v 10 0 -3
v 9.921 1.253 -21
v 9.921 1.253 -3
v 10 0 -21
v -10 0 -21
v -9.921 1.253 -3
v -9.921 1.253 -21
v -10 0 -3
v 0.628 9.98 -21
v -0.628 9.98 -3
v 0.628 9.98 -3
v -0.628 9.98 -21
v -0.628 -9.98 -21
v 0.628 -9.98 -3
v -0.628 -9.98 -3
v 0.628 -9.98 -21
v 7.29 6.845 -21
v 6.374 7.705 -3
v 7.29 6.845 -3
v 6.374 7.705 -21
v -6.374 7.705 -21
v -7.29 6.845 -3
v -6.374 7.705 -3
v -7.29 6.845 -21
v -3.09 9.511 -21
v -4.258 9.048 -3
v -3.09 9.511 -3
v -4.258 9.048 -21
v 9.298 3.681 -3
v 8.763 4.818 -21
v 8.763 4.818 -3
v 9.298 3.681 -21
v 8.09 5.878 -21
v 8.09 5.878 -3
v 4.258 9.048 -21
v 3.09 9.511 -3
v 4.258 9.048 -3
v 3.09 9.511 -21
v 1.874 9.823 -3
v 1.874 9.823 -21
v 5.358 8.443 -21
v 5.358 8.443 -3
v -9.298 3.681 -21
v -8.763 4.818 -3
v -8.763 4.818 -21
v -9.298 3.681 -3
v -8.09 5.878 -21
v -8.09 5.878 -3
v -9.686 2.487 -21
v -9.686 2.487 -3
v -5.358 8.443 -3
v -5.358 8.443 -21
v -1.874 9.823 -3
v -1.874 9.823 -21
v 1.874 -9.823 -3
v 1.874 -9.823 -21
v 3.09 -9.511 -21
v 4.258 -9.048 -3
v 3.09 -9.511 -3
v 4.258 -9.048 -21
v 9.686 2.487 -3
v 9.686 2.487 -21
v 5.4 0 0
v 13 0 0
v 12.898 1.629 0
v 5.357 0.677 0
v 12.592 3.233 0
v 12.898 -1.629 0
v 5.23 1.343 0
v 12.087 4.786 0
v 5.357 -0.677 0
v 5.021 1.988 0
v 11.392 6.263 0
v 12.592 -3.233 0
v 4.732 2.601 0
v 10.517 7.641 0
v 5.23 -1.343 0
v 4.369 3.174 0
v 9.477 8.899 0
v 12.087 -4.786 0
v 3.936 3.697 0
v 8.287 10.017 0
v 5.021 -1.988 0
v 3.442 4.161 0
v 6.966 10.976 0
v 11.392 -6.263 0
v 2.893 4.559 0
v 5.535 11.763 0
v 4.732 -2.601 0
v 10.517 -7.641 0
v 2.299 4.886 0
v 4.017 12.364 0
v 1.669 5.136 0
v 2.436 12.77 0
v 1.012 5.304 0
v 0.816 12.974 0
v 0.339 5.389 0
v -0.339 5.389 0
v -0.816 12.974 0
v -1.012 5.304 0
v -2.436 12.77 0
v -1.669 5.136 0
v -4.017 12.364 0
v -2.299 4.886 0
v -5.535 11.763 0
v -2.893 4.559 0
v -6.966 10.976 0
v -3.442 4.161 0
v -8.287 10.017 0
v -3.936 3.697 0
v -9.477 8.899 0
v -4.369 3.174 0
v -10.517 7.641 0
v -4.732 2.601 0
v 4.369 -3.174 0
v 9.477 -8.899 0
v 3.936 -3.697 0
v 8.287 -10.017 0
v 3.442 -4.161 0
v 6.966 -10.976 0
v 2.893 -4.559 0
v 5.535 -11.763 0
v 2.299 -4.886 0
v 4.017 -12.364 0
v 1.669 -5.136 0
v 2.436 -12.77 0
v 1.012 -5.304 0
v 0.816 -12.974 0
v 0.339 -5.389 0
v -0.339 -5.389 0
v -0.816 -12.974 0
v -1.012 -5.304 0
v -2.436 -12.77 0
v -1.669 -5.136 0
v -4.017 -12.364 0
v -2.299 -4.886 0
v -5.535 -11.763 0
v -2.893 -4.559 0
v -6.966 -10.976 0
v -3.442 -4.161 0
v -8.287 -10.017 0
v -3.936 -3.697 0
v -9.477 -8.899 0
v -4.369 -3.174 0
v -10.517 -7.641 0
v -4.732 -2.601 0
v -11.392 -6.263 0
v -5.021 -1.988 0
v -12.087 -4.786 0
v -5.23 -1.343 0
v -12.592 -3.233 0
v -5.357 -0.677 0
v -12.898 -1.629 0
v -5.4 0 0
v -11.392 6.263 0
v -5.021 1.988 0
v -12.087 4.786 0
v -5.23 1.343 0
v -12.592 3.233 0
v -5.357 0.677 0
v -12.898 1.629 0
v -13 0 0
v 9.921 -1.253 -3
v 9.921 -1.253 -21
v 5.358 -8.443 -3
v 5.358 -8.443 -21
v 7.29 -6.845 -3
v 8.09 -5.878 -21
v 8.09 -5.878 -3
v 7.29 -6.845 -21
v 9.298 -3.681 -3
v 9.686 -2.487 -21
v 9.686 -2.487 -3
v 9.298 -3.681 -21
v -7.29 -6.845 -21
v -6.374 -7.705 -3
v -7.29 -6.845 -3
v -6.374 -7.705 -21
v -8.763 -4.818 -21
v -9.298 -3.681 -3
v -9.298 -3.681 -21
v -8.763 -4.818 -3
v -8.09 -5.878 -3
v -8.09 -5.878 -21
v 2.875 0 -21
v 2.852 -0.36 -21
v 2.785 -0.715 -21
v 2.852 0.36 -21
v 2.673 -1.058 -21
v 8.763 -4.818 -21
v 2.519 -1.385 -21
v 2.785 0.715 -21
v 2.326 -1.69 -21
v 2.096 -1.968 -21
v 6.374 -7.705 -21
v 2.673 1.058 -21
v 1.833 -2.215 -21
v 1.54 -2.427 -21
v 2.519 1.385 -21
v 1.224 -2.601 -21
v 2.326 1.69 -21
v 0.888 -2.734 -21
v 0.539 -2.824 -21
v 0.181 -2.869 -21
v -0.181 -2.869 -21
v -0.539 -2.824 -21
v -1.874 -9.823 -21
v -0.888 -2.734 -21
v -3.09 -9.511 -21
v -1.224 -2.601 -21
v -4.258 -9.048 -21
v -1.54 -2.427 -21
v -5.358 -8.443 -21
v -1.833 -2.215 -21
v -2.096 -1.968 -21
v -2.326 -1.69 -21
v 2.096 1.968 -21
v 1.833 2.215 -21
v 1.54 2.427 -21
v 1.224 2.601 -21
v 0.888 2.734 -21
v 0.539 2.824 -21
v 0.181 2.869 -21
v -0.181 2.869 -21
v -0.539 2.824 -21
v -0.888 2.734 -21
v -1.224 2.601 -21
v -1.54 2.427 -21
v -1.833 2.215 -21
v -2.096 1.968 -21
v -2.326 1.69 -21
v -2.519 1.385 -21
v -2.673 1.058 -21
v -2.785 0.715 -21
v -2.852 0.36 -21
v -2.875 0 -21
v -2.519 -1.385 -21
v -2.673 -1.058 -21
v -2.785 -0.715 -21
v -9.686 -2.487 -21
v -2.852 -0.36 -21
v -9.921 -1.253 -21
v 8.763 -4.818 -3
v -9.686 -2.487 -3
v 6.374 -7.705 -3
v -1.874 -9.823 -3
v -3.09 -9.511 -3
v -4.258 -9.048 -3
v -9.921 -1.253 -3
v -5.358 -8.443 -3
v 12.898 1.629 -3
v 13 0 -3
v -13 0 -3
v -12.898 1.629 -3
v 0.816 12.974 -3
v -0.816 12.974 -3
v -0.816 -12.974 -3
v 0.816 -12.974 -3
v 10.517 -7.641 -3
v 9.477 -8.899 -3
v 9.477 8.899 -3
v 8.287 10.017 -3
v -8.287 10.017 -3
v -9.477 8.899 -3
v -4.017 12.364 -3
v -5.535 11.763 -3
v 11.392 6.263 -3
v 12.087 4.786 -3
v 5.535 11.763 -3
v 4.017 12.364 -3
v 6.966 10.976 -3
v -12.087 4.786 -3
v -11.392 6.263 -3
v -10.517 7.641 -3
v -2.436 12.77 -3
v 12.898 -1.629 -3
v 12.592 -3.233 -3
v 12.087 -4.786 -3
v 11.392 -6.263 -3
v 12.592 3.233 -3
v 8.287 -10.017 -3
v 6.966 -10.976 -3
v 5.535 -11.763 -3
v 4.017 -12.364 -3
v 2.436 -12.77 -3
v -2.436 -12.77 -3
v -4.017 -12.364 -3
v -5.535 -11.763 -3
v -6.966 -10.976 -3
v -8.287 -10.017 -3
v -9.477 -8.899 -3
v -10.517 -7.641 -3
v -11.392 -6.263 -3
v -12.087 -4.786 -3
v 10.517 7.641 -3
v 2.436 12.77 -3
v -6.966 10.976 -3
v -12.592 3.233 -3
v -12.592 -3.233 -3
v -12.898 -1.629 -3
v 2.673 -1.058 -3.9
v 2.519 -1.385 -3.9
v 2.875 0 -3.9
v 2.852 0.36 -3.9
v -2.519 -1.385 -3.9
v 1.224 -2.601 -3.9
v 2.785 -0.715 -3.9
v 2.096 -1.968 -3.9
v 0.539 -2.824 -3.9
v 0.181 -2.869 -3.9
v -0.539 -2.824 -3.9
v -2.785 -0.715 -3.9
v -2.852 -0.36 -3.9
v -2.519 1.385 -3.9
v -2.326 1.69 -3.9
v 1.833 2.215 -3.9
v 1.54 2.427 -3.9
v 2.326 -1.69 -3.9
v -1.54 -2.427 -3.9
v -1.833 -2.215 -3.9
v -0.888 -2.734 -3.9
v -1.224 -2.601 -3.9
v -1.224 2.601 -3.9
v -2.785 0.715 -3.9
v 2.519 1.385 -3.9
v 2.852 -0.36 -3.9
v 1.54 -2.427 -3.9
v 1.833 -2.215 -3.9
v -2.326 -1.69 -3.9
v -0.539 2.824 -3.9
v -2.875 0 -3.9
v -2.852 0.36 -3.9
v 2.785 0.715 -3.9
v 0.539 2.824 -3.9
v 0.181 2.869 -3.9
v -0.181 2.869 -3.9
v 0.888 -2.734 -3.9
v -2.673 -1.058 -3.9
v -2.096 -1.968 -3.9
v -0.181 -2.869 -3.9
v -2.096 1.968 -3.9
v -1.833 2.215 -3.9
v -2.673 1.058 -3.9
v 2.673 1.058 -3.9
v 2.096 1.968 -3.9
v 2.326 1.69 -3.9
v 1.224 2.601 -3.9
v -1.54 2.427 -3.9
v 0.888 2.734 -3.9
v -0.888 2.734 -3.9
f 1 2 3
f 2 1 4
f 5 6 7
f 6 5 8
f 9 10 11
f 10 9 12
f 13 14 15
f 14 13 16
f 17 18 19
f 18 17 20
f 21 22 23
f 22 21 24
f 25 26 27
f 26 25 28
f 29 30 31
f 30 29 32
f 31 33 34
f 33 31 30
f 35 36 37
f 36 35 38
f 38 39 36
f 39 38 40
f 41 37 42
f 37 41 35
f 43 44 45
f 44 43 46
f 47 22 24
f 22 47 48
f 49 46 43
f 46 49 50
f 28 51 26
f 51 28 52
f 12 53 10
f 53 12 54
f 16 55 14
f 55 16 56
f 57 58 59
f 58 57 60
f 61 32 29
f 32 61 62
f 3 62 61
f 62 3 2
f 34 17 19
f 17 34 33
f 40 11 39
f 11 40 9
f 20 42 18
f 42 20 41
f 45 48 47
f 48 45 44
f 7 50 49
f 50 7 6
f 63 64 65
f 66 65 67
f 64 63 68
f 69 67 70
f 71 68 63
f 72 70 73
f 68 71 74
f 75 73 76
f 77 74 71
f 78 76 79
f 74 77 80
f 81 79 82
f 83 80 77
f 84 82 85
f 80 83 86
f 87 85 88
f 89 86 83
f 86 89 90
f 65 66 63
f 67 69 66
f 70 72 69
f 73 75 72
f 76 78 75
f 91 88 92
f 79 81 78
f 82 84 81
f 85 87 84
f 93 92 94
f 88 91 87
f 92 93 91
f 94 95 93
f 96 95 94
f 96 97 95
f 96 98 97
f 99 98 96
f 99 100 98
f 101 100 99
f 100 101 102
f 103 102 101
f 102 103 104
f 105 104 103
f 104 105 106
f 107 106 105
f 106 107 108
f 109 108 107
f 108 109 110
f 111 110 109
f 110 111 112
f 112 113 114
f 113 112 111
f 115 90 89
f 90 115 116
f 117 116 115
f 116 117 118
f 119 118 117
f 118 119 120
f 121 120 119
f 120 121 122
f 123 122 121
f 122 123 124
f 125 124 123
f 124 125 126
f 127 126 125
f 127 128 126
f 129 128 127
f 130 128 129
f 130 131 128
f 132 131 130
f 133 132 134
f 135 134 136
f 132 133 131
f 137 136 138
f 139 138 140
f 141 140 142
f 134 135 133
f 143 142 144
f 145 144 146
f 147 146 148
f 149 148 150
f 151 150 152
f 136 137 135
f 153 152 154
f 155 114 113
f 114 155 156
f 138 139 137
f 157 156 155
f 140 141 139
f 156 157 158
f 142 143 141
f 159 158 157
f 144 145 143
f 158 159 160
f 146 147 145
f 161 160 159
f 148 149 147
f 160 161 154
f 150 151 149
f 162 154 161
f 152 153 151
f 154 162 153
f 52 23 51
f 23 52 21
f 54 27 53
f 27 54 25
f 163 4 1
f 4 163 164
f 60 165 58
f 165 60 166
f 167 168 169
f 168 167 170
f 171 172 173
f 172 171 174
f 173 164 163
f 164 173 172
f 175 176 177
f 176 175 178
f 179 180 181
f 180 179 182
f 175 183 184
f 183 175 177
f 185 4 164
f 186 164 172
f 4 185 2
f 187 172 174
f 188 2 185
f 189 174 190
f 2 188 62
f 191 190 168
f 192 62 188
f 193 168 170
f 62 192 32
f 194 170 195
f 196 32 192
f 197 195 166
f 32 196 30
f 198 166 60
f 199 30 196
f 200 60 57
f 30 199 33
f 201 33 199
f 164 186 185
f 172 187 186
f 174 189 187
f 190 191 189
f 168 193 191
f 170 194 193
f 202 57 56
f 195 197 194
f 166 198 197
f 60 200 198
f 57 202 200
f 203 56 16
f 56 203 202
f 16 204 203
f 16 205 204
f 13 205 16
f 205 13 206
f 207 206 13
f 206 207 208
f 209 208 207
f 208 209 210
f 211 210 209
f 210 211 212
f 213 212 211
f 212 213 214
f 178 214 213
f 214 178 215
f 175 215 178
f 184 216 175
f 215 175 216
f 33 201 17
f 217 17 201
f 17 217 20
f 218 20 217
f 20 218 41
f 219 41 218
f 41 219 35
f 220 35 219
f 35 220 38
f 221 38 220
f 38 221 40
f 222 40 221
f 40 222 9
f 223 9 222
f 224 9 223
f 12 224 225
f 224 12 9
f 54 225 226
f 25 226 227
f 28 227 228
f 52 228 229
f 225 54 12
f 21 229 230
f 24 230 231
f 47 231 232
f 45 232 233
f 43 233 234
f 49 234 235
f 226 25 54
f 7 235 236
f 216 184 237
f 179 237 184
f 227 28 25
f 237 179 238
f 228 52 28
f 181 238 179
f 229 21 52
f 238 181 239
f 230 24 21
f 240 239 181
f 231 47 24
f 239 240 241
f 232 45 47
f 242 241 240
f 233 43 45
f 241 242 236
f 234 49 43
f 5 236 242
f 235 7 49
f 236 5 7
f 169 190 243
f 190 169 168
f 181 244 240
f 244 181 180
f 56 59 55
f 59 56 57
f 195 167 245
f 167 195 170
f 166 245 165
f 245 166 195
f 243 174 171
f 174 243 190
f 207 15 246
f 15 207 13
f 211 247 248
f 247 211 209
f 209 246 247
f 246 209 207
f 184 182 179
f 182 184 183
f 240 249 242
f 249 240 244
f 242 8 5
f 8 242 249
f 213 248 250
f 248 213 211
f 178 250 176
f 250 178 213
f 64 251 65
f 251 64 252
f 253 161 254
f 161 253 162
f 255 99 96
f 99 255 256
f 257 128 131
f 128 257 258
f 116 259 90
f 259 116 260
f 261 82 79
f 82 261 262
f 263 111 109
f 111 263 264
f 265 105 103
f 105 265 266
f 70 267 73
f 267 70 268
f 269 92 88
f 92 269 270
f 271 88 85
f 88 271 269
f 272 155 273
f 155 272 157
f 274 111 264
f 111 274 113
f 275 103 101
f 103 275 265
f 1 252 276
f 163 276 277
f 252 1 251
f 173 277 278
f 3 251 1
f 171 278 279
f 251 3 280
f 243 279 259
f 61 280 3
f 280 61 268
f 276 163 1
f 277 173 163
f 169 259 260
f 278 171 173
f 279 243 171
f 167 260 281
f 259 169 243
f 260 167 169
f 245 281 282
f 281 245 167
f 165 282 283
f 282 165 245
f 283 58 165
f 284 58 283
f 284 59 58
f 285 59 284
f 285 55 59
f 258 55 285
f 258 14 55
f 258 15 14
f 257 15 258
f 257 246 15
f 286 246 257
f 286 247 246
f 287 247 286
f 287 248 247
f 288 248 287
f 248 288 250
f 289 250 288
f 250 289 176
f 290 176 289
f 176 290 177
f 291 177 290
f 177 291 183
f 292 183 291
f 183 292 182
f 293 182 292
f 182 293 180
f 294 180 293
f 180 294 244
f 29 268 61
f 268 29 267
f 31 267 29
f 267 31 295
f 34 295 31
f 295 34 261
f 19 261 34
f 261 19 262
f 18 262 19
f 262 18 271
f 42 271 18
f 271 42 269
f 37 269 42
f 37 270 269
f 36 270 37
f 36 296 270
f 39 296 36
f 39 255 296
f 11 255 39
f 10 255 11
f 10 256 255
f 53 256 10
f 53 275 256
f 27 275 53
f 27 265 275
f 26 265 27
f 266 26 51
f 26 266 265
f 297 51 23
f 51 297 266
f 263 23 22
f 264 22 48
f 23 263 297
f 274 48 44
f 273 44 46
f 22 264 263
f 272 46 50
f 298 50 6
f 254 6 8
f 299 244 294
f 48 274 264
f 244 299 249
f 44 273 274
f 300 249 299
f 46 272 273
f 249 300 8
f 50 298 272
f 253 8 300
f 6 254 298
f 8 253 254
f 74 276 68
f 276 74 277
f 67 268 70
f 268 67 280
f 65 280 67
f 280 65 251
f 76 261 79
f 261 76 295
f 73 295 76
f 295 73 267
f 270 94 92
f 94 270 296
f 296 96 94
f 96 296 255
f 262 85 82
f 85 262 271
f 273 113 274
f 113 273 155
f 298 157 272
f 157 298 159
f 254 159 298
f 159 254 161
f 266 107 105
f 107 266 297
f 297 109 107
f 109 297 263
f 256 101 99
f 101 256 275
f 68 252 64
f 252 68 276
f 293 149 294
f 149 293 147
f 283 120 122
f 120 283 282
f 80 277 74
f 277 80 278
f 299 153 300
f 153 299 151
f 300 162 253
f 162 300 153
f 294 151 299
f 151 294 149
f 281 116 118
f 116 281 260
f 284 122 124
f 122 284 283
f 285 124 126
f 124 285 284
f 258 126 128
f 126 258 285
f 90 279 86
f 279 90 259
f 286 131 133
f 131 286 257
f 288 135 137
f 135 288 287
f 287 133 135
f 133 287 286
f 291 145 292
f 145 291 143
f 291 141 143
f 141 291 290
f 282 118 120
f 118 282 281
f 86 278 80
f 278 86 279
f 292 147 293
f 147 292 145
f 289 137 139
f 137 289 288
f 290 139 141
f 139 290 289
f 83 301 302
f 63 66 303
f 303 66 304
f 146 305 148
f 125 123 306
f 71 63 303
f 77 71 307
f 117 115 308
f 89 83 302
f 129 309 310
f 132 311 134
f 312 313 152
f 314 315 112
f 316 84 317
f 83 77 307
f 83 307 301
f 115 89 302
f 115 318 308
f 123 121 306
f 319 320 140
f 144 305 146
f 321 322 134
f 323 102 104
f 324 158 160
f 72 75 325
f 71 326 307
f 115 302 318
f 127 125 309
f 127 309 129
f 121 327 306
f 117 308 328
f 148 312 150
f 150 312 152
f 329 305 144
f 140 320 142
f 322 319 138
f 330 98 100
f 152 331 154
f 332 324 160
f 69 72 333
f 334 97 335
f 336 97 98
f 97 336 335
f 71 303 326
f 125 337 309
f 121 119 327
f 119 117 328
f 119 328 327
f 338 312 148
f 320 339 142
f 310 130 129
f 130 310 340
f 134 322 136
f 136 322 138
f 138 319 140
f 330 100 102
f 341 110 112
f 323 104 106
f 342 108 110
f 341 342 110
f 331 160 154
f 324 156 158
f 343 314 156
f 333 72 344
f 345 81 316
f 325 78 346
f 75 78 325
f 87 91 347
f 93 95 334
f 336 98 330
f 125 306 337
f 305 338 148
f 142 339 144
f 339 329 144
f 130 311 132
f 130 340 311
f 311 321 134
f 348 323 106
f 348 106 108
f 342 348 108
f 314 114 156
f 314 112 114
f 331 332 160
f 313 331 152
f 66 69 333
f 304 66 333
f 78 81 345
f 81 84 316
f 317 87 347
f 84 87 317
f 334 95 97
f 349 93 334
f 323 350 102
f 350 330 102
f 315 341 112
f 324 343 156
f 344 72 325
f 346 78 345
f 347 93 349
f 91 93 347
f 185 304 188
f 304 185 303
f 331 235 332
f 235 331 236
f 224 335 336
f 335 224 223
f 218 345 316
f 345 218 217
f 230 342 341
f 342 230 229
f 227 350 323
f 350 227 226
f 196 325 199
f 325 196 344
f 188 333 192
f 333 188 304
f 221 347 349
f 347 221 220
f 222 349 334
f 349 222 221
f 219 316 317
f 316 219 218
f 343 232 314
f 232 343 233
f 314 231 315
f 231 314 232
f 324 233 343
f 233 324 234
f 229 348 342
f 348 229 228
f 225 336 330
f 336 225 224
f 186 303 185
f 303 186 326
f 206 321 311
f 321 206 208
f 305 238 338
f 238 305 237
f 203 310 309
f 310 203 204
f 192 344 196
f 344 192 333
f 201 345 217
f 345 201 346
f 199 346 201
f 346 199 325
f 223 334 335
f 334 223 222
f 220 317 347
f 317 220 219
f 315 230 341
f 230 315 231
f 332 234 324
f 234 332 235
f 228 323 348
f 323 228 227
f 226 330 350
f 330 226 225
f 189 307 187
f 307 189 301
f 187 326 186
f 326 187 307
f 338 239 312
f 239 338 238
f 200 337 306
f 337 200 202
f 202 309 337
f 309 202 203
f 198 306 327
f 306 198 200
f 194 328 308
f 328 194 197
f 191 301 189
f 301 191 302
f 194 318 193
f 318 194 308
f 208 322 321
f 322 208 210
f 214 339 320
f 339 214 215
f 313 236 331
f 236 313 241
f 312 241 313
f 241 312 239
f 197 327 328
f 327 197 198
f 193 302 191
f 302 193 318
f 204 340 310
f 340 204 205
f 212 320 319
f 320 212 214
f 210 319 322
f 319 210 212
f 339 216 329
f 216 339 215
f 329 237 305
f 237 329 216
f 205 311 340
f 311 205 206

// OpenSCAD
$fn = 50;


difference() {
	union() {
		translate(v = [0, 0, -21.0000000000]) {
			cylinder(h = 21, r = 10.0000000000);
		}
		translate(v = [0, 0, -3.0000000000]) {
			cylinder(h = 3, r = 13.0000000000);
		}
	}
	union() {
		translate(v = [0, 0, 0]) {
			rotate(a = [0, 0, 0]) {
				difference() {
					union() {
						#translate(v = [0, 0, -21.0000000000]) {
							cylinder(h = 21, r = 2.6000000000);
						}
						#translate(v = [0, 0, -3.9000000000]) {
							cylinder(h = 3.9000000000, r = 10.0000000000, r1 = 2.8750000000, r2 = 5.4000000000);
						}
						#translate(v = [0, 0, -21.0000000000]) {
							cylinder(h = 21, r = 2.8750000000);
						}
						#translate(v = [0, 0, -21.0000000000]) {
							cylinder(h = 21, r = 2.6000000000);
						}
					}
					union();
				}
			}
		}
	}
}
